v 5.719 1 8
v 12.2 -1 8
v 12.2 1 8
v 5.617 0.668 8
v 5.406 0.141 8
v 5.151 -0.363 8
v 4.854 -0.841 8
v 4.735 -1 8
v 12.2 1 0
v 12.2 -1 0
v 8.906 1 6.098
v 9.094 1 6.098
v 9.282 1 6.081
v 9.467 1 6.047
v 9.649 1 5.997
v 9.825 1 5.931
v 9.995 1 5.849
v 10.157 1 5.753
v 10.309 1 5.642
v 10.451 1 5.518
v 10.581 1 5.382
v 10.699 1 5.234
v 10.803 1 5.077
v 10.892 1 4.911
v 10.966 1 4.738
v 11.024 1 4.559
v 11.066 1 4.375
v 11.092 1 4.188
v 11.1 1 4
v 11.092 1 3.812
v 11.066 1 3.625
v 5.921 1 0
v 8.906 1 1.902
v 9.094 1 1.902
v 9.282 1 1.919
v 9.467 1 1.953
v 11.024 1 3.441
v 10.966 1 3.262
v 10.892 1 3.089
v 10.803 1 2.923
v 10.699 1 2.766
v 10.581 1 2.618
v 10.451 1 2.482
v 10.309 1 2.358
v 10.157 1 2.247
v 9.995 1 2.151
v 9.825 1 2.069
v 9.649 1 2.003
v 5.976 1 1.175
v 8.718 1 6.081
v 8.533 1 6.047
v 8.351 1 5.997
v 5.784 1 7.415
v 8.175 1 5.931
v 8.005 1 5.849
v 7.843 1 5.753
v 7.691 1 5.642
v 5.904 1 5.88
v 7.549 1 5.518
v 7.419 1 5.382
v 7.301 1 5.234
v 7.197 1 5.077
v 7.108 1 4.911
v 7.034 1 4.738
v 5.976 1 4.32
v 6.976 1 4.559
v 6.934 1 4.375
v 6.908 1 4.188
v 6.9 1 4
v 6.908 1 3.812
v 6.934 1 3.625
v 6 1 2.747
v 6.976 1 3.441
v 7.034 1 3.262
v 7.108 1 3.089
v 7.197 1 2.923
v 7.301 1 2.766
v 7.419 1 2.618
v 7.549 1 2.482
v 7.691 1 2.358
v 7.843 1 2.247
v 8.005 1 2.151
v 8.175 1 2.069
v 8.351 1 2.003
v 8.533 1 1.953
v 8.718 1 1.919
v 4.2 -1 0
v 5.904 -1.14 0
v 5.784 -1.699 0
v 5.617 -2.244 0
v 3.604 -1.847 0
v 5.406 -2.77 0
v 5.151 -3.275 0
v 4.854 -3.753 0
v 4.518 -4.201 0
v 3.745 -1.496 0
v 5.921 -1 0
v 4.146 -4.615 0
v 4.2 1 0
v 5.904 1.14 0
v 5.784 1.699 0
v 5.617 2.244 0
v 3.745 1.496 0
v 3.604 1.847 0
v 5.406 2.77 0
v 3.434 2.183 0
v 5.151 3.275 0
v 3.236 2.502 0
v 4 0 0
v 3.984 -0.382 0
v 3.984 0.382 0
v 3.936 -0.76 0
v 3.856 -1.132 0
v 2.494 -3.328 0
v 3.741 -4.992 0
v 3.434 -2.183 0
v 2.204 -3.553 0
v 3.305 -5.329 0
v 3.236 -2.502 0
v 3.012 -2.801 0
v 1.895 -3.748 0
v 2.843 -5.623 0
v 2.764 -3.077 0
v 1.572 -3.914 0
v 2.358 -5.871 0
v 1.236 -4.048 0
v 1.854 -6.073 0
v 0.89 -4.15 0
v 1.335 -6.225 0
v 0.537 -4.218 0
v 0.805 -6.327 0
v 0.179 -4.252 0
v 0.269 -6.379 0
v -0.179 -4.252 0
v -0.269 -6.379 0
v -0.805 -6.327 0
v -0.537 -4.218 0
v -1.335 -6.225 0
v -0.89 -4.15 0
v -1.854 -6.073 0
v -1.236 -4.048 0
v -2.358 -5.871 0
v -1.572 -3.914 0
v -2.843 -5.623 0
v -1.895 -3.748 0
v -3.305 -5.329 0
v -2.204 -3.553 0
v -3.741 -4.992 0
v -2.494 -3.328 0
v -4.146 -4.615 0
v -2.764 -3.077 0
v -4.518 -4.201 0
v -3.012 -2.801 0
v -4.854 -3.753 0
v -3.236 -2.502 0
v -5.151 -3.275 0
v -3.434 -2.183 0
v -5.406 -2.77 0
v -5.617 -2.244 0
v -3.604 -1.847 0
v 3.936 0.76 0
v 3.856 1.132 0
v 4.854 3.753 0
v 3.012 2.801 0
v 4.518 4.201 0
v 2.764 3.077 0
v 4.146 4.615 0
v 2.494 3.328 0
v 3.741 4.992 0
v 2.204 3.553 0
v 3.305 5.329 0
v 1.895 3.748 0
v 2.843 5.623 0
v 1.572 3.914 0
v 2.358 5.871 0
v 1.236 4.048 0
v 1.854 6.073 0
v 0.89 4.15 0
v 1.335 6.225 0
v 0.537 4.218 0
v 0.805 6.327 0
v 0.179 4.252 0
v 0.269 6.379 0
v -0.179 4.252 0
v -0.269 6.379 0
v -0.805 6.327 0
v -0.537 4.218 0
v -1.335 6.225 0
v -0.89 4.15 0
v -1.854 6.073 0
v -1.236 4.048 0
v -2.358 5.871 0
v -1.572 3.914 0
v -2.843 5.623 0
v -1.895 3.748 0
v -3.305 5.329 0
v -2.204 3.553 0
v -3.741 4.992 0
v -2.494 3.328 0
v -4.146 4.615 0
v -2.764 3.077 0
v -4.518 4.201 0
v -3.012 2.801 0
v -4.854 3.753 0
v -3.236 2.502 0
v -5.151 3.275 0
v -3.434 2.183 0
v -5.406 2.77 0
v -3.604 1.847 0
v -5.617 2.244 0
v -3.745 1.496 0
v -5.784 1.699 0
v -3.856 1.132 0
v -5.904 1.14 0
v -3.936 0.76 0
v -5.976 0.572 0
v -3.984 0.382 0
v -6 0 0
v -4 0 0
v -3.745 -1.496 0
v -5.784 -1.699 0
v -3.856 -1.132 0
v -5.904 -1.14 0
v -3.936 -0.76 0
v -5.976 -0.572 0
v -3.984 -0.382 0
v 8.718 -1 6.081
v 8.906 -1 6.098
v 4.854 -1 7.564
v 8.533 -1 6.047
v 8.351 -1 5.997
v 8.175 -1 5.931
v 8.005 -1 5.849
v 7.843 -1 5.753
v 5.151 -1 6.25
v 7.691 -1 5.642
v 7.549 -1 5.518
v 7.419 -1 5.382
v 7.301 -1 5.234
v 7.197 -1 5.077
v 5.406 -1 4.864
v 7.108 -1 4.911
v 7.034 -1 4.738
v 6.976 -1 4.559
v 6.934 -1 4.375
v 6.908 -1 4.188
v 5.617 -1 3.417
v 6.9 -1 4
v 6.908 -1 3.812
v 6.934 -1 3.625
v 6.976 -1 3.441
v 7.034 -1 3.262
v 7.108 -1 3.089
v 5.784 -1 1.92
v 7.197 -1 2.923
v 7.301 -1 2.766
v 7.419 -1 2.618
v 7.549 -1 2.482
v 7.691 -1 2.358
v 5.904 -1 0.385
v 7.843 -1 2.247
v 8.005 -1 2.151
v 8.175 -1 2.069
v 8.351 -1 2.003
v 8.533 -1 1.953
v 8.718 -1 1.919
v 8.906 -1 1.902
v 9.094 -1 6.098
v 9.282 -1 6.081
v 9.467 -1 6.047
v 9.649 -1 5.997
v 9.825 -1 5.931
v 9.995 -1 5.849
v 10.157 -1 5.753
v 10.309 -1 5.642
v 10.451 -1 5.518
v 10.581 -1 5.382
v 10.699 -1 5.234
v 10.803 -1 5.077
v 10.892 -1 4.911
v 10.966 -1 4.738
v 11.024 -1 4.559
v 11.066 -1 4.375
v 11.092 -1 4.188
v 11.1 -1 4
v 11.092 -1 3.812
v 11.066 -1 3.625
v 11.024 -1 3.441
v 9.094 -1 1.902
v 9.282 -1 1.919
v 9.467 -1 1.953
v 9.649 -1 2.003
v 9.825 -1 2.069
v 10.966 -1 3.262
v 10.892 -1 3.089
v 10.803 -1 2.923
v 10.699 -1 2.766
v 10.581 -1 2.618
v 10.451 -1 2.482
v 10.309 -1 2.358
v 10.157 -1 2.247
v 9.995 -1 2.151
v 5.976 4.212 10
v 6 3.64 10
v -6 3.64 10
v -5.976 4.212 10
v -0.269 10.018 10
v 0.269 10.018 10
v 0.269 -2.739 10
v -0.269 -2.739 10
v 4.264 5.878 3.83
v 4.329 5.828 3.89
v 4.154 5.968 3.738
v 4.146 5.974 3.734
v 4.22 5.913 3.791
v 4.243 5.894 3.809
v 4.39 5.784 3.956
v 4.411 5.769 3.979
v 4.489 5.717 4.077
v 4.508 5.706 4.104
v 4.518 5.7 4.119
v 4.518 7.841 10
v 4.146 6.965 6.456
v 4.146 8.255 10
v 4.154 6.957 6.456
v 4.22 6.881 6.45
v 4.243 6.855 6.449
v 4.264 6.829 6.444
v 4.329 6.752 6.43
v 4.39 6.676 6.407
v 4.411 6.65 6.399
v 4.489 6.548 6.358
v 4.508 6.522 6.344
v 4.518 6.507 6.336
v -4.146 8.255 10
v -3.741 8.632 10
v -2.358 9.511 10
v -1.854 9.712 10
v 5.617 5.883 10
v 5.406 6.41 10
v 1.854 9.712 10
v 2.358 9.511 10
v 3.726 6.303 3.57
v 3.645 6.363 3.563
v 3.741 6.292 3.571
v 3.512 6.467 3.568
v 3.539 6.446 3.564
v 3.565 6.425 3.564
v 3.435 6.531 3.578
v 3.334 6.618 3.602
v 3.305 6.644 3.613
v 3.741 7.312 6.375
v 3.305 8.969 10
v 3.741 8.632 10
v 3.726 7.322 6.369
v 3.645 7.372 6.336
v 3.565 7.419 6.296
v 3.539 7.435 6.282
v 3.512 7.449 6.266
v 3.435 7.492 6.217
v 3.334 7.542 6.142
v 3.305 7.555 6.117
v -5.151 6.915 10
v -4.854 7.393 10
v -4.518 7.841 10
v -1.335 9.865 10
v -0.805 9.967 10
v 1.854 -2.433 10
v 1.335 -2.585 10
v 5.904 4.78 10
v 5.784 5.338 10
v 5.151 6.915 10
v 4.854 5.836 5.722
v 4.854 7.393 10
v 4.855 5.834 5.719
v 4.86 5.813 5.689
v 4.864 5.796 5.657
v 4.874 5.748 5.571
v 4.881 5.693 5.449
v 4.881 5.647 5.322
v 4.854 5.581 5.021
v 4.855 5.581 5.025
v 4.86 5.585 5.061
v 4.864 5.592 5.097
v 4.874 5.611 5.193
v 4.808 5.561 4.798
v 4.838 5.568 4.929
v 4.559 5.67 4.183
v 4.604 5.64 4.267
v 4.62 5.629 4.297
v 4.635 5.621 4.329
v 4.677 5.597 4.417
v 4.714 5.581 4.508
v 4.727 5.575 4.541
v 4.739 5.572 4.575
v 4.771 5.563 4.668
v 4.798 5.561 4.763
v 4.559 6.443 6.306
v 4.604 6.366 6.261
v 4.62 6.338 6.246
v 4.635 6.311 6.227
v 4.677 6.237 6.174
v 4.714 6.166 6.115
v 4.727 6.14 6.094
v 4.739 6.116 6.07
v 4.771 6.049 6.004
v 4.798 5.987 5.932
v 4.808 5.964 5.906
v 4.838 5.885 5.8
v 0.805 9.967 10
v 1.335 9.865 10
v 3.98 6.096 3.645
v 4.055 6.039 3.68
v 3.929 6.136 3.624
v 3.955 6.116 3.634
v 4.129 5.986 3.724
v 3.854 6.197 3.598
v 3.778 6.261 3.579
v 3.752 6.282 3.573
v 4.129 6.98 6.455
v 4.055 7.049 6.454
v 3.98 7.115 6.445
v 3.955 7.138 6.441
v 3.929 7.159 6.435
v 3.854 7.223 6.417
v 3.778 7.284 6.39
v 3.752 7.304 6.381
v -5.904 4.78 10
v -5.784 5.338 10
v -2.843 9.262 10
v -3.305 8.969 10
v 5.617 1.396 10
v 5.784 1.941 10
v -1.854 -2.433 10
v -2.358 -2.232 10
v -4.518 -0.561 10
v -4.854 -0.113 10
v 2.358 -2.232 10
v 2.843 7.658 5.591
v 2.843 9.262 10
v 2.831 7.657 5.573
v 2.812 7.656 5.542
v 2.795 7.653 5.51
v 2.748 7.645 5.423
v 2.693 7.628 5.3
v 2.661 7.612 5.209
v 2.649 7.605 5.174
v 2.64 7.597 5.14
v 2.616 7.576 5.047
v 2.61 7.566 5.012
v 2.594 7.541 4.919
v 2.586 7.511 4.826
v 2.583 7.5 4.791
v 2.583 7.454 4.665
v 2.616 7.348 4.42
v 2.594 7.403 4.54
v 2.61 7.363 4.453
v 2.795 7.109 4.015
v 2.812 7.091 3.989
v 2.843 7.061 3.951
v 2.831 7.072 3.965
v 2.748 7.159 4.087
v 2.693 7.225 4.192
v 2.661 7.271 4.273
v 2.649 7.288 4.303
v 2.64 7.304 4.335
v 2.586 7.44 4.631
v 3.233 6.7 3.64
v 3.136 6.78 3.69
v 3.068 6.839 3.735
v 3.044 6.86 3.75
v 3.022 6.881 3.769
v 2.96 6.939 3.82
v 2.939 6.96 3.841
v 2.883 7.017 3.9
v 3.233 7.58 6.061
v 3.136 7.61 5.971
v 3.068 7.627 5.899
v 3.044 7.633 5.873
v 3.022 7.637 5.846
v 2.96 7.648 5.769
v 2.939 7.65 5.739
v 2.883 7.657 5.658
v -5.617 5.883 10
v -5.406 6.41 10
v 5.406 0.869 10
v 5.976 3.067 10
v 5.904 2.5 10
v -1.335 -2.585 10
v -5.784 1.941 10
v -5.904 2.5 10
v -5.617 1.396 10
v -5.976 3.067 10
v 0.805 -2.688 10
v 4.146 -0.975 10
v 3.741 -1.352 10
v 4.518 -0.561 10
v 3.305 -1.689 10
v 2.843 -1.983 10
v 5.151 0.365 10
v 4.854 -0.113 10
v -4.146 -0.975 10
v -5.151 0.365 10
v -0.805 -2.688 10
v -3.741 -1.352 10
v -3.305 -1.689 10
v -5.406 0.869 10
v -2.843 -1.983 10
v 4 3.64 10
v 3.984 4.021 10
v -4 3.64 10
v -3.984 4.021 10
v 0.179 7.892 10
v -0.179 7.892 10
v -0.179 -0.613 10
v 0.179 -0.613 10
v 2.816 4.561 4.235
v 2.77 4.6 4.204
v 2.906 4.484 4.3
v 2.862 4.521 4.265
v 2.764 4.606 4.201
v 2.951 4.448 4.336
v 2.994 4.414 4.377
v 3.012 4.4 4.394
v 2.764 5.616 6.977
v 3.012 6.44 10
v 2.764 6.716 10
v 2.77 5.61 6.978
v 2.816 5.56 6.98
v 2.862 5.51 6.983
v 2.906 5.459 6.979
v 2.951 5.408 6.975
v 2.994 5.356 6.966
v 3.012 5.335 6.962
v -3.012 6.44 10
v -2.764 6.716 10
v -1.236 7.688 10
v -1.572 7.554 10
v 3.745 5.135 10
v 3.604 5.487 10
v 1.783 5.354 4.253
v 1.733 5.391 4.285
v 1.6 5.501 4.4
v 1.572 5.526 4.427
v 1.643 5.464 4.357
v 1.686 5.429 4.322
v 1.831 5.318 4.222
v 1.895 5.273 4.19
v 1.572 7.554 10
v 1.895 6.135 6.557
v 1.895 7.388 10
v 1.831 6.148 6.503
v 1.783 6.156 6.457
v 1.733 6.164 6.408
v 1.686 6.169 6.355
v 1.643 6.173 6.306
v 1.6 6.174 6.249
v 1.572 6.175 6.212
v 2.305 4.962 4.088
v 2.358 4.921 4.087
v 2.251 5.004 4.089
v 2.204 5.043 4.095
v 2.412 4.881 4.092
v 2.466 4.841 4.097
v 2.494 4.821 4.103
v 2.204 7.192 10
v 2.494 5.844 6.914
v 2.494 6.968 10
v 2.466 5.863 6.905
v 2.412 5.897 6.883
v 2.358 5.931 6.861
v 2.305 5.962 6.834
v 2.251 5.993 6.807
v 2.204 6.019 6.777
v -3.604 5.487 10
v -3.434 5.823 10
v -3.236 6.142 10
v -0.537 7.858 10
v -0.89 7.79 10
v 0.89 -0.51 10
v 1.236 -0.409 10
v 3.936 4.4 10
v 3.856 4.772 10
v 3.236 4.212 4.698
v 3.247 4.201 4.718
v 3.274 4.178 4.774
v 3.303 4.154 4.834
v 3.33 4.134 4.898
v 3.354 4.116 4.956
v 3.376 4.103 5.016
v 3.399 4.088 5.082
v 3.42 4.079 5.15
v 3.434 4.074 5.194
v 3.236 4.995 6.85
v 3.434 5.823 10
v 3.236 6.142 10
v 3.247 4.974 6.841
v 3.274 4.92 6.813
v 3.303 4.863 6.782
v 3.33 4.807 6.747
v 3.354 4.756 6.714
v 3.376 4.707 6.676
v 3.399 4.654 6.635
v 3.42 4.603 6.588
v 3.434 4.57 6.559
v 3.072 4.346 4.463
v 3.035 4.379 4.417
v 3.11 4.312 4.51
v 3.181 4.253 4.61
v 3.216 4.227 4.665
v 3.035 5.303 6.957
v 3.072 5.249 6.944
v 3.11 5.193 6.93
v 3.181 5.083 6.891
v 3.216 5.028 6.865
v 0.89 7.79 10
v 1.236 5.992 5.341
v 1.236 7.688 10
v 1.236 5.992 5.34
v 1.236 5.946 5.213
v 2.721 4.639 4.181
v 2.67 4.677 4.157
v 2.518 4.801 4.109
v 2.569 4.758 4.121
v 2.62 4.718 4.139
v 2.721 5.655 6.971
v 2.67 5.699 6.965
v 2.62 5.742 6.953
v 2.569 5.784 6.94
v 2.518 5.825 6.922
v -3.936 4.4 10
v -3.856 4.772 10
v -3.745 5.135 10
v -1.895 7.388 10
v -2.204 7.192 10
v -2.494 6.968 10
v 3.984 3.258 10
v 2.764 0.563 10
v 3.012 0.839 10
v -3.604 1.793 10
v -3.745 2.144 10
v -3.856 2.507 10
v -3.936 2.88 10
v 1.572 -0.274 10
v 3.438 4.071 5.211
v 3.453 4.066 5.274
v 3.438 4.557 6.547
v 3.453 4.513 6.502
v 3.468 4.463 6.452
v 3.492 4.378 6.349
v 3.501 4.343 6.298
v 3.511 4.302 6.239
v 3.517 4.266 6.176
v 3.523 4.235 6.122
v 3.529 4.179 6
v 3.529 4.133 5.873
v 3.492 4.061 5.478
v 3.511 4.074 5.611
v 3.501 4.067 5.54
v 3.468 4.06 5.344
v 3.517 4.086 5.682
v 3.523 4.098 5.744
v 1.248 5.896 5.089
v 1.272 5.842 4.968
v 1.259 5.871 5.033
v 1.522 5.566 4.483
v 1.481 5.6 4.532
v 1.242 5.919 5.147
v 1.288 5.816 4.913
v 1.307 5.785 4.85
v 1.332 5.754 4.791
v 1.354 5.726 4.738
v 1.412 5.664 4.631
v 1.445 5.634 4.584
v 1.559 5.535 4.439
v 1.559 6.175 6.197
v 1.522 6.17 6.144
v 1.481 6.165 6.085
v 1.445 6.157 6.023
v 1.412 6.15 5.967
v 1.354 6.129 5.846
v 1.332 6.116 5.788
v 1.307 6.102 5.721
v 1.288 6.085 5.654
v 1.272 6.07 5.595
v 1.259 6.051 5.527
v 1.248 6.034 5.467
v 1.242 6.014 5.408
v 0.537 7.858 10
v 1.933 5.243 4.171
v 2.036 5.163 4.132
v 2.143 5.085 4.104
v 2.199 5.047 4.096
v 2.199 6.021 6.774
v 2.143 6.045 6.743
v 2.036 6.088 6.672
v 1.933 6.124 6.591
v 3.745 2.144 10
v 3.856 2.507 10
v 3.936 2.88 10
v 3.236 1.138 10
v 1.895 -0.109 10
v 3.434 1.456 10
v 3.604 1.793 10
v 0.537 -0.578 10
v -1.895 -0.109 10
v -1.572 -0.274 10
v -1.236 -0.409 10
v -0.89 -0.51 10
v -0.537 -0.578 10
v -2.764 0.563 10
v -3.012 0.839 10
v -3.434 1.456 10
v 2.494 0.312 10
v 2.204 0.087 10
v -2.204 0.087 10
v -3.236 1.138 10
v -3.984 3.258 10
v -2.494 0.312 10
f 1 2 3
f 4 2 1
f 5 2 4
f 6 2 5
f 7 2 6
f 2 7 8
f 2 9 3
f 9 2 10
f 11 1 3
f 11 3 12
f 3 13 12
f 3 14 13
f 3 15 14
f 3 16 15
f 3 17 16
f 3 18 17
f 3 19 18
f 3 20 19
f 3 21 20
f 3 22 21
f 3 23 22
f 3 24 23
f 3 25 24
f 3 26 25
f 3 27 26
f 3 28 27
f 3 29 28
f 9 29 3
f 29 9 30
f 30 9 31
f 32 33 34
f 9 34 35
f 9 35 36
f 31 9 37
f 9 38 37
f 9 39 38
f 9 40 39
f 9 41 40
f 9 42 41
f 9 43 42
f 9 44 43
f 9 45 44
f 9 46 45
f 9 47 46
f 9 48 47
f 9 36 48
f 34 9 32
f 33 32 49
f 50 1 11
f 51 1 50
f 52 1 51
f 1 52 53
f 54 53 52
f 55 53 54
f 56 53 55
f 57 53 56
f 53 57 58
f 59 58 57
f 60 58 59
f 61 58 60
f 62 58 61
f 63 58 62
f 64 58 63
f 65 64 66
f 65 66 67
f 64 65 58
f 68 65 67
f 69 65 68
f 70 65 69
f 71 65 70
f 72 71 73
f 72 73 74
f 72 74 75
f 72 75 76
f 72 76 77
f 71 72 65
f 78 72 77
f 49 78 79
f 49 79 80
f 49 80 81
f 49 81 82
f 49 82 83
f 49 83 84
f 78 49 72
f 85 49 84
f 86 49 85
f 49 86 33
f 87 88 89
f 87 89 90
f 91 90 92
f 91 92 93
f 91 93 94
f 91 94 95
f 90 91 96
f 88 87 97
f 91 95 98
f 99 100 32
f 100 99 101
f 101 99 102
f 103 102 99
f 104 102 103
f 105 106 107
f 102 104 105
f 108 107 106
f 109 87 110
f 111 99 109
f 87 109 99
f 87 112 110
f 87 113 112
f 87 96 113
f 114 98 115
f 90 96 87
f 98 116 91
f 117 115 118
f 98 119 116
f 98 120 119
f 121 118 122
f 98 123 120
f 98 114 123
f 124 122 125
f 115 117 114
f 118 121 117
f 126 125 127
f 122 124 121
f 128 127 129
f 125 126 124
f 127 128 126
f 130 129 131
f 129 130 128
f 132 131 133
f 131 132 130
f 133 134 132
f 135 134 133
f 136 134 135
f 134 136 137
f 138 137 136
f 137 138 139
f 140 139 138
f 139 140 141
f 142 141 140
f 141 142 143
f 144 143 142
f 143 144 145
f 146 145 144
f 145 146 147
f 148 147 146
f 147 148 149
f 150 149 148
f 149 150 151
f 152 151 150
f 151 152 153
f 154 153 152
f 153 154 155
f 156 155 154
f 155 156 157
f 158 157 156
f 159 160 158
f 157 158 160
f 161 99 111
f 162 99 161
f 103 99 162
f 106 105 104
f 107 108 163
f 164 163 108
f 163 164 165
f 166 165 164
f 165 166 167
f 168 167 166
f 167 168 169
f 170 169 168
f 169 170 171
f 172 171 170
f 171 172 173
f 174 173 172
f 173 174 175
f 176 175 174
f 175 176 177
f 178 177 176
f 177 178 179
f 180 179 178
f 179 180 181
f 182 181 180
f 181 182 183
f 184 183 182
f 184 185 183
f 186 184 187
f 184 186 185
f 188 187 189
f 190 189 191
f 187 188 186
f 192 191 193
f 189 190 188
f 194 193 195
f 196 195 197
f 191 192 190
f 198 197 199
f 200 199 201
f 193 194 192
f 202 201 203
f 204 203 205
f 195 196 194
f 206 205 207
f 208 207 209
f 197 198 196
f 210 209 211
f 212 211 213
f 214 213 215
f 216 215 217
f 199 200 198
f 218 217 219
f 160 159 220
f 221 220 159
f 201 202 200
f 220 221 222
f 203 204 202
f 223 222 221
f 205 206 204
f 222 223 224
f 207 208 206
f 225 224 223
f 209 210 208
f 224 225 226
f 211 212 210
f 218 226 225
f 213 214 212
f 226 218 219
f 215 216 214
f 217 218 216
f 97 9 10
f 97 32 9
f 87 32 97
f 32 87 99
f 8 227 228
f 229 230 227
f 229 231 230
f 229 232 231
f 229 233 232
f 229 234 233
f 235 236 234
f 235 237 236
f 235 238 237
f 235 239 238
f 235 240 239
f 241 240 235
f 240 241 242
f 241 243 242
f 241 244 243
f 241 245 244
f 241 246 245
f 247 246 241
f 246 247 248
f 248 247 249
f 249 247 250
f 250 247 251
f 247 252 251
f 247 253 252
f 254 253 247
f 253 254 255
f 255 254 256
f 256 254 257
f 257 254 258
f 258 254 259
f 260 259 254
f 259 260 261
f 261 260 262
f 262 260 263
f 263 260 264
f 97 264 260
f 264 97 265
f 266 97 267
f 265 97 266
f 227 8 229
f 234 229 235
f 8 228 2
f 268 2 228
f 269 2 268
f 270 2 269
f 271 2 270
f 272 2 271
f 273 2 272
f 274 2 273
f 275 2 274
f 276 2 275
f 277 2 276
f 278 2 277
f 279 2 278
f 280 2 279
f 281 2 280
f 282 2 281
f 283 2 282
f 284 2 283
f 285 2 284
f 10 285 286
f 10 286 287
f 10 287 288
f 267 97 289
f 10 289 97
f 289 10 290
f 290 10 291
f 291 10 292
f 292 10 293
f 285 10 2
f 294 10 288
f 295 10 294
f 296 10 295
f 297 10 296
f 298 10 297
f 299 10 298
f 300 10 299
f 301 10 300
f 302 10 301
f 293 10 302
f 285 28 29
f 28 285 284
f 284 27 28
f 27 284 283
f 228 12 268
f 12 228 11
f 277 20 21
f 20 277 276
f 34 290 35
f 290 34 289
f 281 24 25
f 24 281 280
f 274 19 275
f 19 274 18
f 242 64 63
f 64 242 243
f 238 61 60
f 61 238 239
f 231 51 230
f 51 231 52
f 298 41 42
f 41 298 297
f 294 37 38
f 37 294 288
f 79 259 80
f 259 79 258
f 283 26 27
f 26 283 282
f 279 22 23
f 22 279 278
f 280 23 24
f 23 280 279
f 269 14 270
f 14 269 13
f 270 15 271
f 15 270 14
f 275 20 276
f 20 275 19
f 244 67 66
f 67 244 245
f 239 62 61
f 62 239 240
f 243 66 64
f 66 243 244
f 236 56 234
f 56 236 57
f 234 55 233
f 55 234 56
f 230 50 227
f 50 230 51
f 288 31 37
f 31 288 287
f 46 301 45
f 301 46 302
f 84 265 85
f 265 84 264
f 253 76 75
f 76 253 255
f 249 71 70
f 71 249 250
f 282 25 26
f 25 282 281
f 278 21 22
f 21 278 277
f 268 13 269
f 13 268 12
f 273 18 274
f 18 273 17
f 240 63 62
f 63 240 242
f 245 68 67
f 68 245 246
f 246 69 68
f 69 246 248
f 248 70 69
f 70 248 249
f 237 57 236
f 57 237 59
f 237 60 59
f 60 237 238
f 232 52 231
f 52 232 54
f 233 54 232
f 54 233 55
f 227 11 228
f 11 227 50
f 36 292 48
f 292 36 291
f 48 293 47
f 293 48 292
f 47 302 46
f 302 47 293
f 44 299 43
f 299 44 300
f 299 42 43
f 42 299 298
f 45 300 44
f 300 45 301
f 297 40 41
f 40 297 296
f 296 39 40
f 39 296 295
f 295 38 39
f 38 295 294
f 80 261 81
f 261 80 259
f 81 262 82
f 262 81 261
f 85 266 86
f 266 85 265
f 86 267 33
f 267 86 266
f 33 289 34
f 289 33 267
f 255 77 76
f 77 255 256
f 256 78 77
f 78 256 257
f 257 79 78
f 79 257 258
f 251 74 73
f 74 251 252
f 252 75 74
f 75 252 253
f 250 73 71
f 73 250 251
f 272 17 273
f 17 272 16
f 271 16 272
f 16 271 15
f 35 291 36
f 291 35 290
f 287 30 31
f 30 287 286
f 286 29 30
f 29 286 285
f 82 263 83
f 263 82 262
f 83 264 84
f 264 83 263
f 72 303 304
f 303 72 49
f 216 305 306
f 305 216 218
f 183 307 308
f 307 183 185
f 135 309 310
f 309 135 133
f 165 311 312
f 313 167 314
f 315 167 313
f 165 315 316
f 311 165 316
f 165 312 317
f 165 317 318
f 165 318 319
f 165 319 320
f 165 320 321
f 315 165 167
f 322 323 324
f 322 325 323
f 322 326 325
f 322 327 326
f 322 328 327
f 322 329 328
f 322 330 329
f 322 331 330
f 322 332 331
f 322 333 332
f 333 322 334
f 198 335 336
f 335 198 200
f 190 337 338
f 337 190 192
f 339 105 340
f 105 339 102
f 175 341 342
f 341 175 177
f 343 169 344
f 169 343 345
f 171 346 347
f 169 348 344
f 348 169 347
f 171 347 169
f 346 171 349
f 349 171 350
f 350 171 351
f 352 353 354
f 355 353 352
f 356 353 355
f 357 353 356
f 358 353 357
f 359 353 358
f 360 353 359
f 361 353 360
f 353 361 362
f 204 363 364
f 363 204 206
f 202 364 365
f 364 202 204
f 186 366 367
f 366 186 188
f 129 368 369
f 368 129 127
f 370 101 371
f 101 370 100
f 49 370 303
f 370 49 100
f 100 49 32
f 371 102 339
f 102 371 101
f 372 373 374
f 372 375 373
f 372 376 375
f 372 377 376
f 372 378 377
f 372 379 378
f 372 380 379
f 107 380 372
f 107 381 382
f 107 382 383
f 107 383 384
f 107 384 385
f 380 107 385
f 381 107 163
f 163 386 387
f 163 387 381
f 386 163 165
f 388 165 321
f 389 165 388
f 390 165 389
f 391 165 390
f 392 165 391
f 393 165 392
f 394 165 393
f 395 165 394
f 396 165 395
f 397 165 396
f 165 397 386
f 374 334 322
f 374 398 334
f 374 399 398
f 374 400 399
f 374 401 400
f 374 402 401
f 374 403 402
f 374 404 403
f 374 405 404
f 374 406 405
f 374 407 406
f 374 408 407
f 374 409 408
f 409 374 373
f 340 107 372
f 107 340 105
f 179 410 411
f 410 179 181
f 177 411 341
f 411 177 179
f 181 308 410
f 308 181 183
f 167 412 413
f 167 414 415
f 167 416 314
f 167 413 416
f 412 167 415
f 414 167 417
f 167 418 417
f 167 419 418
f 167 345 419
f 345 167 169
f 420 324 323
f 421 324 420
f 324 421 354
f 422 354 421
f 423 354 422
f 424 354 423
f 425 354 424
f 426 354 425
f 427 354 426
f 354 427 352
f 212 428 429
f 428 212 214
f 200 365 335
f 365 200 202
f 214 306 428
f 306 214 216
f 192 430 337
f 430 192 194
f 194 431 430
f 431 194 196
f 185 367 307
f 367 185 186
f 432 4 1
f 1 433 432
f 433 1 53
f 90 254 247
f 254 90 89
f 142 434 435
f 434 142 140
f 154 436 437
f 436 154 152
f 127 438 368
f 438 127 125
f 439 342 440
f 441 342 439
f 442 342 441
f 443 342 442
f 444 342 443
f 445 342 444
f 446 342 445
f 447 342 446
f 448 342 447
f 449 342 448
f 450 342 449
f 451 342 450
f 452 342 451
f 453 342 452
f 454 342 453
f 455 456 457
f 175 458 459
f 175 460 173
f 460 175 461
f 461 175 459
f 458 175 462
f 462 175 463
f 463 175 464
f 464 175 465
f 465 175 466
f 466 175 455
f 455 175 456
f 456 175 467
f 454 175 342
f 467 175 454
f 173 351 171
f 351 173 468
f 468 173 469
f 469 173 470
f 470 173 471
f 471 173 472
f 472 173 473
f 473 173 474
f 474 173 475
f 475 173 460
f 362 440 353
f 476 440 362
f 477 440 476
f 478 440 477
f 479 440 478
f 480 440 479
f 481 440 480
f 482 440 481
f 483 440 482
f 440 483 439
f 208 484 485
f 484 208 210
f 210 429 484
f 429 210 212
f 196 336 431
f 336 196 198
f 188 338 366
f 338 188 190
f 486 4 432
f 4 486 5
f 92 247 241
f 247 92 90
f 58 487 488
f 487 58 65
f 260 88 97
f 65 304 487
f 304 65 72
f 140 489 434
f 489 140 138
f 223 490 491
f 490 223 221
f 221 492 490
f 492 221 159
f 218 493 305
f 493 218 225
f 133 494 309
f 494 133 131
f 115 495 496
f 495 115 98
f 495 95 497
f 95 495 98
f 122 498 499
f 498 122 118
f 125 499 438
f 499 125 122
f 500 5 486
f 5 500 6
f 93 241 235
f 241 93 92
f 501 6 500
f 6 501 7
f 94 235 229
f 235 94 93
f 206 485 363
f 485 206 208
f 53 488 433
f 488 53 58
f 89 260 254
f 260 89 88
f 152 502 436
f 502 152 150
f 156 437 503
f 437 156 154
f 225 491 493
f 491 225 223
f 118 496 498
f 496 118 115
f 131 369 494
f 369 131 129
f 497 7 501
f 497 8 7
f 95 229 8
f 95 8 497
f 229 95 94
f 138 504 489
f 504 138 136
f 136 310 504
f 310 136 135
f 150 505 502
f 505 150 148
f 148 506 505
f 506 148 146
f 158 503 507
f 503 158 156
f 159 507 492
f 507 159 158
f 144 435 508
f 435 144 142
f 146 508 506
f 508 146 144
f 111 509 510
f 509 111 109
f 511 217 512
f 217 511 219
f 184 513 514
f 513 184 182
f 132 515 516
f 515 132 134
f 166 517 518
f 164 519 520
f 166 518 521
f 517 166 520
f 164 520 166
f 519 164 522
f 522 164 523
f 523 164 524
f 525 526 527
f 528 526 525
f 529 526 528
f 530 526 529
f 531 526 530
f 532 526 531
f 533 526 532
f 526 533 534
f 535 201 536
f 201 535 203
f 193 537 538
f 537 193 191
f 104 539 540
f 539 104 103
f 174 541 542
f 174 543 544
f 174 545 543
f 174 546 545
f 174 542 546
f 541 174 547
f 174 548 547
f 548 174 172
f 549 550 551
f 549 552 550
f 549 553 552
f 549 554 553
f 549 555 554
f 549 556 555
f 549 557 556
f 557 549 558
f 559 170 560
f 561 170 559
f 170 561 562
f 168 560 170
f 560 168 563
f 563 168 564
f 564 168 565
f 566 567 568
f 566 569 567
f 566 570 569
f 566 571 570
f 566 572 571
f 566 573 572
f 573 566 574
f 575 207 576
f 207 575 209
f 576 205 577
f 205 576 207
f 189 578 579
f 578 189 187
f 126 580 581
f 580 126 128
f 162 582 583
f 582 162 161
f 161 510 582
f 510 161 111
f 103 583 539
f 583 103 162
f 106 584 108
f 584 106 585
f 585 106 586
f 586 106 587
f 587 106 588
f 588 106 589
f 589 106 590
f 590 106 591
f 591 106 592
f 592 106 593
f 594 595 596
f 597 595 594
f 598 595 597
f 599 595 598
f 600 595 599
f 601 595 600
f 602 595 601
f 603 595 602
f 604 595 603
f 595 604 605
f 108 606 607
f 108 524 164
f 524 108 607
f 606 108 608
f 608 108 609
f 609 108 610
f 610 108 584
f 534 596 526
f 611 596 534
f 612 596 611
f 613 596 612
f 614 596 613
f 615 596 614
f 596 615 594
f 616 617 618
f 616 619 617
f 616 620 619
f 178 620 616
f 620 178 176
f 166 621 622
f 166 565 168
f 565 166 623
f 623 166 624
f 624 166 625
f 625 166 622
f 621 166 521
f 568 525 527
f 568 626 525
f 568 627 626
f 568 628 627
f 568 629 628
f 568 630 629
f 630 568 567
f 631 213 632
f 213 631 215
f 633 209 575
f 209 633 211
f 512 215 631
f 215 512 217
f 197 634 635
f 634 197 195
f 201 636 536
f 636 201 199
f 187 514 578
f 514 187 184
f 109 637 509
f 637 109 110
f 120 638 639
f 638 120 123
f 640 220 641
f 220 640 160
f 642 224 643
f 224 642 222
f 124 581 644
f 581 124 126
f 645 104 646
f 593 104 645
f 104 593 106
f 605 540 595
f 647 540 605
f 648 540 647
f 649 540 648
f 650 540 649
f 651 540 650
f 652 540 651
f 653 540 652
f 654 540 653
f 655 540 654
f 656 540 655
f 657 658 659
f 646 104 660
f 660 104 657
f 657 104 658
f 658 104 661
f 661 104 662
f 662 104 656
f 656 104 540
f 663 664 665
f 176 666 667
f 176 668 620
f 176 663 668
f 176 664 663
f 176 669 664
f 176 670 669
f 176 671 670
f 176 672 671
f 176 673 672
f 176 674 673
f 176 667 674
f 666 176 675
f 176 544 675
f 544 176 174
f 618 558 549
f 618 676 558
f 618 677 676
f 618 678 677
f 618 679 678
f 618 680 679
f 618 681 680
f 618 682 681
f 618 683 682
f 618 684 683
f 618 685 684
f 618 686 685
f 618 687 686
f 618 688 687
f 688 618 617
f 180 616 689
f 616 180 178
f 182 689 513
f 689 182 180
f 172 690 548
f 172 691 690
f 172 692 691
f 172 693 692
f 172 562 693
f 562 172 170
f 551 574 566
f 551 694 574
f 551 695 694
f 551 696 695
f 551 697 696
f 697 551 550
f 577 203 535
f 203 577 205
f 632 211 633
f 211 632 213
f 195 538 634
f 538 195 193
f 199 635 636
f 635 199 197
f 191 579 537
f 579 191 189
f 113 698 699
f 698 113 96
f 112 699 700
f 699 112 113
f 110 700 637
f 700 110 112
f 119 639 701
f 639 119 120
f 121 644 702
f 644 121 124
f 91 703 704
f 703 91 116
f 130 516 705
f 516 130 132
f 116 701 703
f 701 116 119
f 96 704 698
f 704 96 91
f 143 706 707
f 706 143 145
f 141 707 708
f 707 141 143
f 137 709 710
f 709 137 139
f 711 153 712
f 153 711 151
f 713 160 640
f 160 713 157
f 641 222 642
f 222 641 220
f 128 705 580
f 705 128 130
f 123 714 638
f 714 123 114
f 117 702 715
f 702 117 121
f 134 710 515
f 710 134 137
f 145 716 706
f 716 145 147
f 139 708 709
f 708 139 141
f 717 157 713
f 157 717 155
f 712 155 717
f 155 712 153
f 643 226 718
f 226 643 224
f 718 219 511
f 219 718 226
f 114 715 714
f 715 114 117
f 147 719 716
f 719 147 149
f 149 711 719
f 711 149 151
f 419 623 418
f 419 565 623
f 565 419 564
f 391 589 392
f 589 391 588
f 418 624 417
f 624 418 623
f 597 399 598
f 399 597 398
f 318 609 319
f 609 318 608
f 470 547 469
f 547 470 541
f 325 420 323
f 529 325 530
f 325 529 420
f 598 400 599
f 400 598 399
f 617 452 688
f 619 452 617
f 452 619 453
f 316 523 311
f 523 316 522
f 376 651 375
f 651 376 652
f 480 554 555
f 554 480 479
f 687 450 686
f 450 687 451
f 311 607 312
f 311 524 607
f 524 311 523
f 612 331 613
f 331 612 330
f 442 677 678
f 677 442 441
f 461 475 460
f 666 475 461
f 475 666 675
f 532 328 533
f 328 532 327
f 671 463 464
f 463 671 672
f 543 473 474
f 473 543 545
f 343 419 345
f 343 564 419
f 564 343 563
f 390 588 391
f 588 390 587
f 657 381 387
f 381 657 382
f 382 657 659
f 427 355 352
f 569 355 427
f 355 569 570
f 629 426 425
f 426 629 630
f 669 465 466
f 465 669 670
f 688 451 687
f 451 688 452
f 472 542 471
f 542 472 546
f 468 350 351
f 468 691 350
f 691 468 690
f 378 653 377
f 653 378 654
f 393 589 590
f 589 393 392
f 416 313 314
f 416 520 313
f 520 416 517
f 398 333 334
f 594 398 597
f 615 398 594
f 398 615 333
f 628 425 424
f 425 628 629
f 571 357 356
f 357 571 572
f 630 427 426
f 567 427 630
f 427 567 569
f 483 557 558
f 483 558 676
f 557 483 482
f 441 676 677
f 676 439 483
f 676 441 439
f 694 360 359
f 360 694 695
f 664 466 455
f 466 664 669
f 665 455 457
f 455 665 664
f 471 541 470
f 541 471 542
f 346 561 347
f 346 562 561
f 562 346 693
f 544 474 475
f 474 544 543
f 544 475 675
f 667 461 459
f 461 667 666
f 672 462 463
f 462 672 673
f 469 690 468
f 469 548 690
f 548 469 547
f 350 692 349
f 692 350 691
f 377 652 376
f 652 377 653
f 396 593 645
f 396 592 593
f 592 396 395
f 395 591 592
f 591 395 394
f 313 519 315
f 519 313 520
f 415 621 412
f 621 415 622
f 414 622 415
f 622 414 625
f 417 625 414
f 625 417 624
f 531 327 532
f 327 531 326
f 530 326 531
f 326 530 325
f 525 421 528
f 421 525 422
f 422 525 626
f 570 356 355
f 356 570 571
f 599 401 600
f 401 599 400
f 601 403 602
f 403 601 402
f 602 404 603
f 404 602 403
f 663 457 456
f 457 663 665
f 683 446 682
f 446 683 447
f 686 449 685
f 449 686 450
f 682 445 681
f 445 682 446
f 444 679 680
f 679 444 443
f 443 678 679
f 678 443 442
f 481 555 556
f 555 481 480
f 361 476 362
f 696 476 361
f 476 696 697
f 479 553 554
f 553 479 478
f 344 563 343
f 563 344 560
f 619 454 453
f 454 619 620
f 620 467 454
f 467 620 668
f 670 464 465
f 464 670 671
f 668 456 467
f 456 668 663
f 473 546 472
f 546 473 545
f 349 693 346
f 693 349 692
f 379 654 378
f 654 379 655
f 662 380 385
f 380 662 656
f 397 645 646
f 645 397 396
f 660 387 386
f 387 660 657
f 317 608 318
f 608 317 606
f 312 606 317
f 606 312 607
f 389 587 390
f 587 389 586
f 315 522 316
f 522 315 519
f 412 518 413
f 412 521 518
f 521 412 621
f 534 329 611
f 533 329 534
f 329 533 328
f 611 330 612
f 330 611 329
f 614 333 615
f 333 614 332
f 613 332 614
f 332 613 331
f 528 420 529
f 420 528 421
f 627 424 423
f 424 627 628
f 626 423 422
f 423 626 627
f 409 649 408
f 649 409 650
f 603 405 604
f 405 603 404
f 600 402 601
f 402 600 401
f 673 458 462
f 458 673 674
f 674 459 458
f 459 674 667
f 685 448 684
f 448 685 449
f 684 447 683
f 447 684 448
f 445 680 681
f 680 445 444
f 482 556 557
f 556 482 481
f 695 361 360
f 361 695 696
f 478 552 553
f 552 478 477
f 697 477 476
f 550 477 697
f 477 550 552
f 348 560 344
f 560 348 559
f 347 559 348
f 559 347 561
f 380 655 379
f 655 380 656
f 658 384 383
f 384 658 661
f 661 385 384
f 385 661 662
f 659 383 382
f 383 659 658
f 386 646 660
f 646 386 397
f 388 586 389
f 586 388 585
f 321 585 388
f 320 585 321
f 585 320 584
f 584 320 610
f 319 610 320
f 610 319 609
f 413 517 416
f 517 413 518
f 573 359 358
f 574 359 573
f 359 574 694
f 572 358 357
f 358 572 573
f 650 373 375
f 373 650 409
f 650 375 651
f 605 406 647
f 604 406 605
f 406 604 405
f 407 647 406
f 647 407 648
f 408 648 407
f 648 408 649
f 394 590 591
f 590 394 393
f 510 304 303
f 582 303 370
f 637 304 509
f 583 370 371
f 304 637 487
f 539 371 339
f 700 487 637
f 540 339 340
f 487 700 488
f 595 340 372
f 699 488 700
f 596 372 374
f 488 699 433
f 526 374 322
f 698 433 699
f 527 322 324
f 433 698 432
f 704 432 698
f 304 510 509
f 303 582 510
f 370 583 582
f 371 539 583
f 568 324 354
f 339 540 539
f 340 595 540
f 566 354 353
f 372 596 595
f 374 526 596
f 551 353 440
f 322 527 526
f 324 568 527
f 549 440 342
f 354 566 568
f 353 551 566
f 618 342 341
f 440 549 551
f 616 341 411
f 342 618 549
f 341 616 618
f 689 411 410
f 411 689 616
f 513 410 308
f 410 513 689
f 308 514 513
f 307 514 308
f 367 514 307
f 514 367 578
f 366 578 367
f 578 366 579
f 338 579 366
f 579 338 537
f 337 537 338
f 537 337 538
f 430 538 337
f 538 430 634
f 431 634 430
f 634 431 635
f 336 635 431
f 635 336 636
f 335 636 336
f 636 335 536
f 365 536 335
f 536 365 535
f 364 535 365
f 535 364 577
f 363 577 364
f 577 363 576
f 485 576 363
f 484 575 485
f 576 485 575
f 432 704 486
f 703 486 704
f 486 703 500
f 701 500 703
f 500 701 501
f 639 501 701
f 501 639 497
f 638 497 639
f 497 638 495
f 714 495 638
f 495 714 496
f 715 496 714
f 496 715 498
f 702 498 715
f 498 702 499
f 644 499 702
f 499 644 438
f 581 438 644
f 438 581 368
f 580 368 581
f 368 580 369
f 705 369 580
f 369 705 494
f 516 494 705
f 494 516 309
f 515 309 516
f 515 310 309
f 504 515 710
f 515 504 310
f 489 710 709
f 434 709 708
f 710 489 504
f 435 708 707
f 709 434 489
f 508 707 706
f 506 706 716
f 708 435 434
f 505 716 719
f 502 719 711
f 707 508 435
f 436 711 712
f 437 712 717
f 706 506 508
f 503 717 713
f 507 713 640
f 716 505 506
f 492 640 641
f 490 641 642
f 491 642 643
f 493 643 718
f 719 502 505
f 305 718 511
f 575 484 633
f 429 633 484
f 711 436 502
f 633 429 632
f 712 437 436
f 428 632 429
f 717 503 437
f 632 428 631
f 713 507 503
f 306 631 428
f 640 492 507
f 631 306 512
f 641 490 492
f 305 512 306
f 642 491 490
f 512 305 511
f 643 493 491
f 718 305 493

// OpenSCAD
$fn=70;


camR = 4;
camTubeR = 6;
camTubeL = 30;

fanXY=40;
fanZ=10;


minkowR2=3;
wallThickness=1;
minkowR1=minkowR2+wallThickness;

mountThickness=0.4;

rotatorR=19;

fanScrewR=1.7;

armMoveX=20;
armMoveY=0;


module camTube()
{
  translate([0,0,-10])
  difference() {
    cylinder(r=camTubeR,h=camTubeL,center=false);
    cylinder(r=camR,h=camTubeL,center=false);
    translate([0,0,17]) rotate([0,90,50]) cylinder(r=1.5,h=8,center=false);
  }
}
/* camTube(); */


module miniFanHolder()
{
  difference()
  {
    union()
    {
      translate([-fanXY/2+minkowR2,-fanXY/2+minkowR2,0])  //move zero to middle
      difference()
      {
        union(){
        hull(){
          minkowski() {
            cube([fanXY-minkowR1*2+wallThickness*2,fanXY-minkowR1*2+wallThickness*2,fanZ]);
            cylinder(r=minkowR1,h=0.00000000000001);
          }
            translate([-armMoveX,armMoveY,0]) cylinder(r=minkowR1,h=fanZ);
          }
          translate([-armMoveX,armMoveY,0]) cylinder(r=minkowR1,h=fanZ*2);
        }


        translate([0,0,mountThickness])
        minkowski() {
          cube([fanXY-minkowR2*2,fanXY-minkowR2*2,fanZ]);
          cylinder(r=minkowR2,h=0.00000000000001);
        }
      }
    }
    cylinder(r=rotatorR, h=fanZ);

    translate([-fanXY/2+minkowR2,fanXY/2-minkowR2,0]) cylinder(r=fanScrewR, h=fanZ);
    translate([-fanXY/2+minkowR2,-fanXY/2+minkowR2,0]) cylinder(r=fanScrewR, h=fanZ);
  }

}

/* miniFanHolder(); */



module nozzleCam()
{
  difference(){
    translate([4.2,-1,0]) cube([8,2,8]);
    translate([9,0,4]) rotate([90,0,0]) cylinder(r=4.2/2,h=2, center=true);
  }
  difference() {
    rotate([-20,0,0]) camTube();
    translate([-10,-10,10]) cube([20,40,20]);
    translate([-10,-10,-20]) cube([20,40,20]);
  }
}


nozzleCam();


/* difference() {
  miniFanHolder();
  #translate([-10,-25,0]) cube([50,50,10]);
  #translate([-25,-25,0]) cube([50,25,10]);
} */
